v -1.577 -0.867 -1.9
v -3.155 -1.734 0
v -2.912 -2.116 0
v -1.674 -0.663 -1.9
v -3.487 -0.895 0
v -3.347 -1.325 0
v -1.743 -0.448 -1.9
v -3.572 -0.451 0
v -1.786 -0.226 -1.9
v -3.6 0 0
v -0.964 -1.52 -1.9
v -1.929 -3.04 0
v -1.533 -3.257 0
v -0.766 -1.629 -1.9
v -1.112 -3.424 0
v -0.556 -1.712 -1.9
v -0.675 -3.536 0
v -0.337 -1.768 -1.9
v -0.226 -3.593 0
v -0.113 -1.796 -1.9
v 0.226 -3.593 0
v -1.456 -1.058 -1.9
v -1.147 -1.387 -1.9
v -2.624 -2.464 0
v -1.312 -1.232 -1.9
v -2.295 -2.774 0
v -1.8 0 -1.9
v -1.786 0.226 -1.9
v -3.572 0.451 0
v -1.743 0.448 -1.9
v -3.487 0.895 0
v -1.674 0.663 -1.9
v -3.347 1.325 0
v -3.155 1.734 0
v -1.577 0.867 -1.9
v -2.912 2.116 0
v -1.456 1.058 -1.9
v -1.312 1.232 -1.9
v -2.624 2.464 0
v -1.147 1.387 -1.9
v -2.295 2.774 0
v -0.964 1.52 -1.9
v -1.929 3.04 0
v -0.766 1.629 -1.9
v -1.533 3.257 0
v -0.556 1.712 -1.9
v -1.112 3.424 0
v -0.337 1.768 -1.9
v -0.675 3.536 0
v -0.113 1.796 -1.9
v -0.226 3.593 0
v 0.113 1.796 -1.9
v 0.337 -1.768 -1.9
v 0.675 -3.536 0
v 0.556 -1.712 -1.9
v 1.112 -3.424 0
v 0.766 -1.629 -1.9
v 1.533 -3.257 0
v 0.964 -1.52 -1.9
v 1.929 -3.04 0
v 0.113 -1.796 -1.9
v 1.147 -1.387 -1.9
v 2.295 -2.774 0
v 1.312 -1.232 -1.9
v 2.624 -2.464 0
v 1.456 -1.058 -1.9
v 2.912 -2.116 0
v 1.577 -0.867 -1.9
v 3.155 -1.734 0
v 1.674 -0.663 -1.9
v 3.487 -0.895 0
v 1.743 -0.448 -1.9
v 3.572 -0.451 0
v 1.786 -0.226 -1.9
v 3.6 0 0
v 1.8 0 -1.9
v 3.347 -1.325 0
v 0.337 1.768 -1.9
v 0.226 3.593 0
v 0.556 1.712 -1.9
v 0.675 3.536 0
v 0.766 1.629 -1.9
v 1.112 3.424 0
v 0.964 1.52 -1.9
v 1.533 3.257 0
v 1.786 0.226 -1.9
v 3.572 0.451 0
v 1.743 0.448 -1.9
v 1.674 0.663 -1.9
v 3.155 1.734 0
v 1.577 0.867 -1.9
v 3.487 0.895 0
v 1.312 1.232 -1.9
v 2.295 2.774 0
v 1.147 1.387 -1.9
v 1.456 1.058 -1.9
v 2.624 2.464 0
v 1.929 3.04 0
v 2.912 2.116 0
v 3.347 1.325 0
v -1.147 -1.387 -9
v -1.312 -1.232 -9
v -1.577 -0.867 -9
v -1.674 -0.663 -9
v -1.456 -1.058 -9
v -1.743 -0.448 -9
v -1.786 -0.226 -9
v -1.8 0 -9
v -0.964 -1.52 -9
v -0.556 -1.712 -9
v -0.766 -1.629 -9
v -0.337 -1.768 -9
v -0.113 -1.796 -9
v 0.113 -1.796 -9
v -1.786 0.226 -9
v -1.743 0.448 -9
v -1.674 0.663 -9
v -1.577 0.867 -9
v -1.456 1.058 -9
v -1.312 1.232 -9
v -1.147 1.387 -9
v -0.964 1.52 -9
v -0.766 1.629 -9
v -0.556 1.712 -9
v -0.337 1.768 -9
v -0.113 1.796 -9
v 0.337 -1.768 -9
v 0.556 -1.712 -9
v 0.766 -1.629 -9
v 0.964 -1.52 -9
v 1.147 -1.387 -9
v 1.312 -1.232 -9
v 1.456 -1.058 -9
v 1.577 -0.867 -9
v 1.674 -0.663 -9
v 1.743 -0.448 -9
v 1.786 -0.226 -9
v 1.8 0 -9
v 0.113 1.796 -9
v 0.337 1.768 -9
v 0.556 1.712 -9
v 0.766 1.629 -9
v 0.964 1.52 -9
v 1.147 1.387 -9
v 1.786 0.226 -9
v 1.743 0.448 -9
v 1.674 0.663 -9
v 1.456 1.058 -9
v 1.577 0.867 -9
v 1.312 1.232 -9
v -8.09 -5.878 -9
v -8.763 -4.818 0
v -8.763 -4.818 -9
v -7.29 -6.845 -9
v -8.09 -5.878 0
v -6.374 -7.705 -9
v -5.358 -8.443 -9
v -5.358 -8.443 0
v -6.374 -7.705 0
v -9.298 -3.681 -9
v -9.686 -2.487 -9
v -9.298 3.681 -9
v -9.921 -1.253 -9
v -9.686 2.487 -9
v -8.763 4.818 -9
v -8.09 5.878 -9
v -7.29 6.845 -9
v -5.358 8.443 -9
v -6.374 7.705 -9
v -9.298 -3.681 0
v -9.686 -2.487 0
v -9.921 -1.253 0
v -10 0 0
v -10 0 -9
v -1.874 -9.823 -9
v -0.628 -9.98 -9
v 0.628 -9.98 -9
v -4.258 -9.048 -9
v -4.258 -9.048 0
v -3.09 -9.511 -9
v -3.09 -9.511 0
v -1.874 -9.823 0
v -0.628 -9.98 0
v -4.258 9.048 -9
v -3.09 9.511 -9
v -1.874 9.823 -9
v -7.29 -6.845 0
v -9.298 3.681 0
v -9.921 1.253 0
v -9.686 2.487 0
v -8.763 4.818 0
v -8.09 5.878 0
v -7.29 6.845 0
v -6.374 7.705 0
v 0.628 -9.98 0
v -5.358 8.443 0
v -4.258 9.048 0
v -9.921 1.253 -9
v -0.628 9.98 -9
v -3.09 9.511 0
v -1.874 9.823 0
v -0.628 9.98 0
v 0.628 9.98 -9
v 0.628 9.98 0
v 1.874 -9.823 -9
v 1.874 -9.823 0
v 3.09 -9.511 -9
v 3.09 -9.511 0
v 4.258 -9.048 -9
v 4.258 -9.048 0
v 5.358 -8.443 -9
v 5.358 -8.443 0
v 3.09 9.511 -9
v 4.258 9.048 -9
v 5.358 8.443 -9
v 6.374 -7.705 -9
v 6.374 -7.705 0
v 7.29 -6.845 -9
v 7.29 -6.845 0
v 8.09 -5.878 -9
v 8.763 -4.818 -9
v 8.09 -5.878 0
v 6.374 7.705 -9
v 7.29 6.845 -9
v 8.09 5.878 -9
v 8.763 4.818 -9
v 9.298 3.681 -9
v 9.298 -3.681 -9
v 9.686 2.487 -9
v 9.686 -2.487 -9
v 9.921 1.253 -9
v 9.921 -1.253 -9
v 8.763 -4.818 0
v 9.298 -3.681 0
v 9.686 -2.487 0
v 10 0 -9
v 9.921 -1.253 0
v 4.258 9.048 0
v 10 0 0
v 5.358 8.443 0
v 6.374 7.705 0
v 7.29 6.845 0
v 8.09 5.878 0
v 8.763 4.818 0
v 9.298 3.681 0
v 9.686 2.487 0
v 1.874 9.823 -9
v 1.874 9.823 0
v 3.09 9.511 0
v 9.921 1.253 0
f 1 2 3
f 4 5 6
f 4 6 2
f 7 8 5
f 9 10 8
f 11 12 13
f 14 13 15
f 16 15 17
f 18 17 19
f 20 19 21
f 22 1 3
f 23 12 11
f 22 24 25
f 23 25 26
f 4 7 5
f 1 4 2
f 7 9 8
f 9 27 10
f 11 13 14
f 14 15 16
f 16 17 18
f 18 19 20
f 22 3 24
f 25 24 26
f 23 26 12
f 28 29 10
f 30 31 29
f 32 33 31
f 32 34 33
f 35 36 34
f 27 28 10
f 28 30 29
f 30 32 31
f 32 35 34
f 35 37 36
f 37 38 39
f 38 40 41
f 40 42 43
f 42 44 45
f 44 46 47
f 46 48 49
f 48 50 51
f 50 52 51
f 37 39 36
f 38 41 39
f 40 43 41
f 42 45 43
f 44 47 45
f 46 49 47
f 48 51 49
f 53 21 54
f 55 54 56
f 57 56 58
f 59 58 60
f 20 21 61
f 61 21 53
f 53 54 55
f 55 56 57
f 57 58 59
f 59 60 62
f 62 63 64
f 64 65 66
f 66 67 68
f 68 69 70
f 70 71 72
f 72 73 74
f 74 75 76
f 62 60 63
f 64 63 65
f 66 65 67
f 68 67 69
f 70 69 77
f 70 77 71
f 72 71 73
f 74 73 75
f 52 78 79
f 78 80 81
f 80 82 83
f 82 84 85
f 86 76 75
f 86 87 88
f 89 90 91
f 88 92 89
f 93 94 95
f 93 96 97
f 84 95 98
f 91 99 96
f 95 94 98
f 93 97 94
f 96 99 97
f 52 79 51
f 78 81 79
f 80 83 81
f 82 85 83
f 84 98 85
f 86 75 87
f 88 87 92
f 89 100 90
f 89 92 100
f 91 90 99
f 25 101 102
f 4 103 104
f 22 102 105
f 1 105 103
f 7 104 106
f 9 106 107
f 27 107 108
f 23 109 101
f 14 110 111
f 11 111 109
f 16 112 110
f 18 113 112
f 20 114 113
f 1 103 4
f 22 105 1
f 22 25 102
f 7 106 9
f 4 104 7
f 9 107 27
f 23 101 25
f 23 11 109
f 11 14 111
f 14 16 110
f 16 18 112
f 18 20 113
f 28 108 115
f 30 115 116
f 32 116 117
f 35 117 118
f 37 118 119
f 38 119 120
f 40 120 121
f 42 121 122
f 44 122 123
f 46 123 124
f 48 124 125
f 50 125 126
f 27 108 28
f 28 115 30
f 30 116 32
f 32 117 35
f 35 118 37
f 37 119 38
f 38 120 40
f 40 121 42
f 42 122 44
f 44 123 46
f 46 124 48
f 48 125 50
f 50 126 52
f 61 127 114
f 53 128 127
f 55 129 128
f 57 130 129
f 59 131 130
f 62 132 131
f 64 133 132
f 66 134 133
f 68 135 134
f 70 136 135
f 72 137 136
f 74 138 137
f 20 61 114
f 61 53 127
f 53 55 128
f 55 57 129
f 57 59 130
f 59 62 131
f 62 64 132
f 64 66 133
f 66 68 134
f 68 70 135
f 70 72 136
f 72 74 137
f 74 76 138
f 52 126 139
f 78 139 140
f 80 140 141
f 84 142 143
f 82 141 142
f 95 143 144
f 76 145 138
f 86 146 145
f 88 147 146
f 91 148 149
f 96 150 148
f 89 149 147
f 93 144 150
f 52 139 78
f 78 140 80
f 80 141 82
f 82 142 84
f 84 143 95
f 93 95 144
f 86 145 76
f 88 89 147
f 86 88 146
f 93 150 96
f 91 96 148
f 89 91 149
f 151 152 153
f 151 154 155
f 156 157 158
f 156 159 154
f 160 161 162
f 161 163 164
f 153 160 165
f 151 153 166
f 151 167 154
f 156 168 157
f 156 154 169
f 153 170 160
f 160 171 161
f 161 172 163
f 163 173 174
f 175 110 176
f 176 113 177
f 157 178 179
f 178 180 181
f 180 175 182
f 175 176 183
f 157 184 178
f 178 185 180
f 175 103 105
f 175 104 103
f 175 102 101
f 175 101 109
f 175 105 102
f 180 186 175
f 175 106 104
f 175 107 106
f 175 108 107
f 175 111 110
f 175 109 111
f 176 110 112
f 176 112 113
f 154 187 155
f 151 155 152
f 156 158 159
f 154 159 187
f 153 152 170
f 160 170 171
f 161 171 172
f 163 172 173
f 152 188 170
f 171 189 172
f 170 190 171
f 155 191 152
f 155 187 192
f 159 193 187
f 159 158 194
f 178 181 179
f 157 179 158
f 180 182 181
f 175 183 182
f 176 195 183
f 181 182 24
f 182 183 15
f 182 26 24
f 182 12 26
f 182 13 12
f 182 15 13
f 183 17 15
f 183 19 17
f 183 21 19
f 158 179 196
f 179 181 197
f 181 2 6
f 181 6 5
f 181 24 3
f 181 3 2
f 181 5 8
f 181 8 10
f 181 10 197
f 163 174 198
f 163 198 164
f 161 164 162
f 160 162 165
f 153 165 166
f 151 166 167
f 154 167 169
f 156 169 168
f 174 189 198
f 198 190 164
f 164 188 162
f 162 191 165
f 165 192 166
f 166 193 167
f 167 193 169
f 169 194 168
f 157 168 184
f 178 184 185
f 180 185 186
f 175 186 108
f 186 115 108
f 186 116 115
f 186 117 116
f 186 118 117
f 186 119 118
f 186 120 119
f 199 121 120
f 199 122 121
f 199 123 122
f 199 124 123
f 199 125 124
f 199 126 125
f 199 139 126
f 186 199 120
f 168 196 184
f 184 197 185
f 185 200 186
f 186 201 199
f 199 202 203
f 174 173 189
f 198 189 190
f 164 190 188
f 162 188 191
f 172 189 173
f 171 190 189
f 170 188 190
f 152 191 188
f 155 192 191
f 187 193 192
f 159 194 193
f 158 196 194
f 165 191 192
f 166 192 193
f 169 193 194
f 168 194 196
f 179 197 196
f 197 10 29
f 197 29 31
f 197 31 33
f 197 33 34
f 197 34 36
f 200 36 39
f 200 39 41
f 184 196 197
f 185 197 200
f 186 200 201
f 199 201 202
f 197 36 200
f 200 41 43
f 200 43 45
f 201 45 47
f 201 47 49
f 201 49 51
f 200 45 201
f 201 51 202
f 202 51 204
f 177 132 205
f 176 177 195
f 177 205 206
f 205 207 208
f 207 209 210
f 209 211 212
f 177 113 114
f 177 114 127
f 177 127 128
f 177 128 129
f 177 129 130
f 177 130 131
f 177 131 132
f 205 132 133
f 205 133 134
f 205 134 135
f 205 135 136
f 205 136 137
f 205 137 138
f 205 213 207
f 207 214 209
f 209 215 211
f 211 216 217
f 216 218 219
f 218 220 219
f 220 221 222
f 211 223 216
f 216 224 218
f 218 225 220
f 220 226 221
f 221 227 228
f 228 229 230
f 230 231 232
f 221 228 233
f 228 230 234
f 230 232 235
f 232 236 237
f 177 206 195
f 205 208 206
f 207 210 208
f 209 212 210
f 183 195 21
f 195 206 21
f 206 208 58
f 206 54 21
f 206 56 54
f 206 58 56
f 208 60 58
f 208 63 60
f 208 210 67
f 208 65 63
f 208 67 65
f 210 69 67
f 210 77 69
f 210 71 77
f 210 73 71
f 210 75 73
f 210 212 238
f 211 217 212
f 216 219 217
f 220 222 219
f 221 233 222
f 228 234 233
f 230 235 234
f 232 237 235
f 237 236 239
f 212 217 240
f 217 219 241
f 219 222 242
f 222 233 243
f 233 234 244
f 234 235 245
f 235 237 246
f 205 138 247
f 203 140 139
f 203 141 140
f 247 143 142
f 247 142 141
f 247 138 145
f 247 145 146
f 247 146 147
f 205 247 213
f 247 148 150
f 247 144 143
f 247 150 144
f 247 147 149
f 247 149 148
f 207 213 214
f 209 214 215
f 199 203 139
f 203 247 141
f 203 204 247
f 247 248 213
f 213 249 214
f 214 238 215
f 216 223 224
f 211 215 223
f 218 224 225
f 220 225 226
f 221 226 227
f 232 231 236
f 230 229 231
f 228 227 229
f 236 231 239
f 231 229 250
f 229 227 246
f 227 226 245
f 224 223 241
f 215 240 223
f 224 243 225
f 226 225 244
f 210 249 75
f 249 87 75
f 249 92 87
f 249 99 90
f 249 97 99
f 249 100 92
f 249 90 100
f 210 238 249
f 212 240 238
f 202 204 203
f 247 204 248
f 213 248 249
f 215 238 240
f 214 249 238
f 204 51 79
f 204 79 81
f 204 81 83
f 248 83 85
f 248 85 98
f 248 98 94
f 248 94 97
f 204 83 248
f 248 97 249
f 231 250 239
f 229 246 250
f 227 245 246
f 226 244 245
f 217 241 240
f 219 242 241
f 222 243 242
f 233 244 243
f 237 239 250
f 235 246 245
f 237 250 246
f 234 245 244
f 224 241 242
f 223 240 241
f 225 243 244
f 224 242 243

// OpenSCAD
$fn = 50;


difference() {
	union() {
		translate(v = [0, 0, -9.0000000000]) {
			cylinder(h = 9, r = 10.0000000000);
		}
	}
	union() {
		translate(v = [0, 0, 0]) {
			rotate(a = [0, 0, 0]) {
				difference() {
					union() {
						translate(v = [0, 0, -12.0000000000]) {
							cylinder(h = 12, r = 1.5000000000);
						}
						translate(v = [0, 0, -1.9000000000]) {
							cylinder(h = 1.9000000000, r1 = 1.8000000000, r2 = 3.6000000000);
						}
						translate(v = [0, 0, -12.0000000000]) {
							cylinder(h = 12, r = 1.8000000000);
						}
						translate(v = [0, 0, -12.0000000000]) {
							cylinder(h = 12, r = 1.5000000000);
						}
					}
					union();
				}
			}
		}
	}
}
